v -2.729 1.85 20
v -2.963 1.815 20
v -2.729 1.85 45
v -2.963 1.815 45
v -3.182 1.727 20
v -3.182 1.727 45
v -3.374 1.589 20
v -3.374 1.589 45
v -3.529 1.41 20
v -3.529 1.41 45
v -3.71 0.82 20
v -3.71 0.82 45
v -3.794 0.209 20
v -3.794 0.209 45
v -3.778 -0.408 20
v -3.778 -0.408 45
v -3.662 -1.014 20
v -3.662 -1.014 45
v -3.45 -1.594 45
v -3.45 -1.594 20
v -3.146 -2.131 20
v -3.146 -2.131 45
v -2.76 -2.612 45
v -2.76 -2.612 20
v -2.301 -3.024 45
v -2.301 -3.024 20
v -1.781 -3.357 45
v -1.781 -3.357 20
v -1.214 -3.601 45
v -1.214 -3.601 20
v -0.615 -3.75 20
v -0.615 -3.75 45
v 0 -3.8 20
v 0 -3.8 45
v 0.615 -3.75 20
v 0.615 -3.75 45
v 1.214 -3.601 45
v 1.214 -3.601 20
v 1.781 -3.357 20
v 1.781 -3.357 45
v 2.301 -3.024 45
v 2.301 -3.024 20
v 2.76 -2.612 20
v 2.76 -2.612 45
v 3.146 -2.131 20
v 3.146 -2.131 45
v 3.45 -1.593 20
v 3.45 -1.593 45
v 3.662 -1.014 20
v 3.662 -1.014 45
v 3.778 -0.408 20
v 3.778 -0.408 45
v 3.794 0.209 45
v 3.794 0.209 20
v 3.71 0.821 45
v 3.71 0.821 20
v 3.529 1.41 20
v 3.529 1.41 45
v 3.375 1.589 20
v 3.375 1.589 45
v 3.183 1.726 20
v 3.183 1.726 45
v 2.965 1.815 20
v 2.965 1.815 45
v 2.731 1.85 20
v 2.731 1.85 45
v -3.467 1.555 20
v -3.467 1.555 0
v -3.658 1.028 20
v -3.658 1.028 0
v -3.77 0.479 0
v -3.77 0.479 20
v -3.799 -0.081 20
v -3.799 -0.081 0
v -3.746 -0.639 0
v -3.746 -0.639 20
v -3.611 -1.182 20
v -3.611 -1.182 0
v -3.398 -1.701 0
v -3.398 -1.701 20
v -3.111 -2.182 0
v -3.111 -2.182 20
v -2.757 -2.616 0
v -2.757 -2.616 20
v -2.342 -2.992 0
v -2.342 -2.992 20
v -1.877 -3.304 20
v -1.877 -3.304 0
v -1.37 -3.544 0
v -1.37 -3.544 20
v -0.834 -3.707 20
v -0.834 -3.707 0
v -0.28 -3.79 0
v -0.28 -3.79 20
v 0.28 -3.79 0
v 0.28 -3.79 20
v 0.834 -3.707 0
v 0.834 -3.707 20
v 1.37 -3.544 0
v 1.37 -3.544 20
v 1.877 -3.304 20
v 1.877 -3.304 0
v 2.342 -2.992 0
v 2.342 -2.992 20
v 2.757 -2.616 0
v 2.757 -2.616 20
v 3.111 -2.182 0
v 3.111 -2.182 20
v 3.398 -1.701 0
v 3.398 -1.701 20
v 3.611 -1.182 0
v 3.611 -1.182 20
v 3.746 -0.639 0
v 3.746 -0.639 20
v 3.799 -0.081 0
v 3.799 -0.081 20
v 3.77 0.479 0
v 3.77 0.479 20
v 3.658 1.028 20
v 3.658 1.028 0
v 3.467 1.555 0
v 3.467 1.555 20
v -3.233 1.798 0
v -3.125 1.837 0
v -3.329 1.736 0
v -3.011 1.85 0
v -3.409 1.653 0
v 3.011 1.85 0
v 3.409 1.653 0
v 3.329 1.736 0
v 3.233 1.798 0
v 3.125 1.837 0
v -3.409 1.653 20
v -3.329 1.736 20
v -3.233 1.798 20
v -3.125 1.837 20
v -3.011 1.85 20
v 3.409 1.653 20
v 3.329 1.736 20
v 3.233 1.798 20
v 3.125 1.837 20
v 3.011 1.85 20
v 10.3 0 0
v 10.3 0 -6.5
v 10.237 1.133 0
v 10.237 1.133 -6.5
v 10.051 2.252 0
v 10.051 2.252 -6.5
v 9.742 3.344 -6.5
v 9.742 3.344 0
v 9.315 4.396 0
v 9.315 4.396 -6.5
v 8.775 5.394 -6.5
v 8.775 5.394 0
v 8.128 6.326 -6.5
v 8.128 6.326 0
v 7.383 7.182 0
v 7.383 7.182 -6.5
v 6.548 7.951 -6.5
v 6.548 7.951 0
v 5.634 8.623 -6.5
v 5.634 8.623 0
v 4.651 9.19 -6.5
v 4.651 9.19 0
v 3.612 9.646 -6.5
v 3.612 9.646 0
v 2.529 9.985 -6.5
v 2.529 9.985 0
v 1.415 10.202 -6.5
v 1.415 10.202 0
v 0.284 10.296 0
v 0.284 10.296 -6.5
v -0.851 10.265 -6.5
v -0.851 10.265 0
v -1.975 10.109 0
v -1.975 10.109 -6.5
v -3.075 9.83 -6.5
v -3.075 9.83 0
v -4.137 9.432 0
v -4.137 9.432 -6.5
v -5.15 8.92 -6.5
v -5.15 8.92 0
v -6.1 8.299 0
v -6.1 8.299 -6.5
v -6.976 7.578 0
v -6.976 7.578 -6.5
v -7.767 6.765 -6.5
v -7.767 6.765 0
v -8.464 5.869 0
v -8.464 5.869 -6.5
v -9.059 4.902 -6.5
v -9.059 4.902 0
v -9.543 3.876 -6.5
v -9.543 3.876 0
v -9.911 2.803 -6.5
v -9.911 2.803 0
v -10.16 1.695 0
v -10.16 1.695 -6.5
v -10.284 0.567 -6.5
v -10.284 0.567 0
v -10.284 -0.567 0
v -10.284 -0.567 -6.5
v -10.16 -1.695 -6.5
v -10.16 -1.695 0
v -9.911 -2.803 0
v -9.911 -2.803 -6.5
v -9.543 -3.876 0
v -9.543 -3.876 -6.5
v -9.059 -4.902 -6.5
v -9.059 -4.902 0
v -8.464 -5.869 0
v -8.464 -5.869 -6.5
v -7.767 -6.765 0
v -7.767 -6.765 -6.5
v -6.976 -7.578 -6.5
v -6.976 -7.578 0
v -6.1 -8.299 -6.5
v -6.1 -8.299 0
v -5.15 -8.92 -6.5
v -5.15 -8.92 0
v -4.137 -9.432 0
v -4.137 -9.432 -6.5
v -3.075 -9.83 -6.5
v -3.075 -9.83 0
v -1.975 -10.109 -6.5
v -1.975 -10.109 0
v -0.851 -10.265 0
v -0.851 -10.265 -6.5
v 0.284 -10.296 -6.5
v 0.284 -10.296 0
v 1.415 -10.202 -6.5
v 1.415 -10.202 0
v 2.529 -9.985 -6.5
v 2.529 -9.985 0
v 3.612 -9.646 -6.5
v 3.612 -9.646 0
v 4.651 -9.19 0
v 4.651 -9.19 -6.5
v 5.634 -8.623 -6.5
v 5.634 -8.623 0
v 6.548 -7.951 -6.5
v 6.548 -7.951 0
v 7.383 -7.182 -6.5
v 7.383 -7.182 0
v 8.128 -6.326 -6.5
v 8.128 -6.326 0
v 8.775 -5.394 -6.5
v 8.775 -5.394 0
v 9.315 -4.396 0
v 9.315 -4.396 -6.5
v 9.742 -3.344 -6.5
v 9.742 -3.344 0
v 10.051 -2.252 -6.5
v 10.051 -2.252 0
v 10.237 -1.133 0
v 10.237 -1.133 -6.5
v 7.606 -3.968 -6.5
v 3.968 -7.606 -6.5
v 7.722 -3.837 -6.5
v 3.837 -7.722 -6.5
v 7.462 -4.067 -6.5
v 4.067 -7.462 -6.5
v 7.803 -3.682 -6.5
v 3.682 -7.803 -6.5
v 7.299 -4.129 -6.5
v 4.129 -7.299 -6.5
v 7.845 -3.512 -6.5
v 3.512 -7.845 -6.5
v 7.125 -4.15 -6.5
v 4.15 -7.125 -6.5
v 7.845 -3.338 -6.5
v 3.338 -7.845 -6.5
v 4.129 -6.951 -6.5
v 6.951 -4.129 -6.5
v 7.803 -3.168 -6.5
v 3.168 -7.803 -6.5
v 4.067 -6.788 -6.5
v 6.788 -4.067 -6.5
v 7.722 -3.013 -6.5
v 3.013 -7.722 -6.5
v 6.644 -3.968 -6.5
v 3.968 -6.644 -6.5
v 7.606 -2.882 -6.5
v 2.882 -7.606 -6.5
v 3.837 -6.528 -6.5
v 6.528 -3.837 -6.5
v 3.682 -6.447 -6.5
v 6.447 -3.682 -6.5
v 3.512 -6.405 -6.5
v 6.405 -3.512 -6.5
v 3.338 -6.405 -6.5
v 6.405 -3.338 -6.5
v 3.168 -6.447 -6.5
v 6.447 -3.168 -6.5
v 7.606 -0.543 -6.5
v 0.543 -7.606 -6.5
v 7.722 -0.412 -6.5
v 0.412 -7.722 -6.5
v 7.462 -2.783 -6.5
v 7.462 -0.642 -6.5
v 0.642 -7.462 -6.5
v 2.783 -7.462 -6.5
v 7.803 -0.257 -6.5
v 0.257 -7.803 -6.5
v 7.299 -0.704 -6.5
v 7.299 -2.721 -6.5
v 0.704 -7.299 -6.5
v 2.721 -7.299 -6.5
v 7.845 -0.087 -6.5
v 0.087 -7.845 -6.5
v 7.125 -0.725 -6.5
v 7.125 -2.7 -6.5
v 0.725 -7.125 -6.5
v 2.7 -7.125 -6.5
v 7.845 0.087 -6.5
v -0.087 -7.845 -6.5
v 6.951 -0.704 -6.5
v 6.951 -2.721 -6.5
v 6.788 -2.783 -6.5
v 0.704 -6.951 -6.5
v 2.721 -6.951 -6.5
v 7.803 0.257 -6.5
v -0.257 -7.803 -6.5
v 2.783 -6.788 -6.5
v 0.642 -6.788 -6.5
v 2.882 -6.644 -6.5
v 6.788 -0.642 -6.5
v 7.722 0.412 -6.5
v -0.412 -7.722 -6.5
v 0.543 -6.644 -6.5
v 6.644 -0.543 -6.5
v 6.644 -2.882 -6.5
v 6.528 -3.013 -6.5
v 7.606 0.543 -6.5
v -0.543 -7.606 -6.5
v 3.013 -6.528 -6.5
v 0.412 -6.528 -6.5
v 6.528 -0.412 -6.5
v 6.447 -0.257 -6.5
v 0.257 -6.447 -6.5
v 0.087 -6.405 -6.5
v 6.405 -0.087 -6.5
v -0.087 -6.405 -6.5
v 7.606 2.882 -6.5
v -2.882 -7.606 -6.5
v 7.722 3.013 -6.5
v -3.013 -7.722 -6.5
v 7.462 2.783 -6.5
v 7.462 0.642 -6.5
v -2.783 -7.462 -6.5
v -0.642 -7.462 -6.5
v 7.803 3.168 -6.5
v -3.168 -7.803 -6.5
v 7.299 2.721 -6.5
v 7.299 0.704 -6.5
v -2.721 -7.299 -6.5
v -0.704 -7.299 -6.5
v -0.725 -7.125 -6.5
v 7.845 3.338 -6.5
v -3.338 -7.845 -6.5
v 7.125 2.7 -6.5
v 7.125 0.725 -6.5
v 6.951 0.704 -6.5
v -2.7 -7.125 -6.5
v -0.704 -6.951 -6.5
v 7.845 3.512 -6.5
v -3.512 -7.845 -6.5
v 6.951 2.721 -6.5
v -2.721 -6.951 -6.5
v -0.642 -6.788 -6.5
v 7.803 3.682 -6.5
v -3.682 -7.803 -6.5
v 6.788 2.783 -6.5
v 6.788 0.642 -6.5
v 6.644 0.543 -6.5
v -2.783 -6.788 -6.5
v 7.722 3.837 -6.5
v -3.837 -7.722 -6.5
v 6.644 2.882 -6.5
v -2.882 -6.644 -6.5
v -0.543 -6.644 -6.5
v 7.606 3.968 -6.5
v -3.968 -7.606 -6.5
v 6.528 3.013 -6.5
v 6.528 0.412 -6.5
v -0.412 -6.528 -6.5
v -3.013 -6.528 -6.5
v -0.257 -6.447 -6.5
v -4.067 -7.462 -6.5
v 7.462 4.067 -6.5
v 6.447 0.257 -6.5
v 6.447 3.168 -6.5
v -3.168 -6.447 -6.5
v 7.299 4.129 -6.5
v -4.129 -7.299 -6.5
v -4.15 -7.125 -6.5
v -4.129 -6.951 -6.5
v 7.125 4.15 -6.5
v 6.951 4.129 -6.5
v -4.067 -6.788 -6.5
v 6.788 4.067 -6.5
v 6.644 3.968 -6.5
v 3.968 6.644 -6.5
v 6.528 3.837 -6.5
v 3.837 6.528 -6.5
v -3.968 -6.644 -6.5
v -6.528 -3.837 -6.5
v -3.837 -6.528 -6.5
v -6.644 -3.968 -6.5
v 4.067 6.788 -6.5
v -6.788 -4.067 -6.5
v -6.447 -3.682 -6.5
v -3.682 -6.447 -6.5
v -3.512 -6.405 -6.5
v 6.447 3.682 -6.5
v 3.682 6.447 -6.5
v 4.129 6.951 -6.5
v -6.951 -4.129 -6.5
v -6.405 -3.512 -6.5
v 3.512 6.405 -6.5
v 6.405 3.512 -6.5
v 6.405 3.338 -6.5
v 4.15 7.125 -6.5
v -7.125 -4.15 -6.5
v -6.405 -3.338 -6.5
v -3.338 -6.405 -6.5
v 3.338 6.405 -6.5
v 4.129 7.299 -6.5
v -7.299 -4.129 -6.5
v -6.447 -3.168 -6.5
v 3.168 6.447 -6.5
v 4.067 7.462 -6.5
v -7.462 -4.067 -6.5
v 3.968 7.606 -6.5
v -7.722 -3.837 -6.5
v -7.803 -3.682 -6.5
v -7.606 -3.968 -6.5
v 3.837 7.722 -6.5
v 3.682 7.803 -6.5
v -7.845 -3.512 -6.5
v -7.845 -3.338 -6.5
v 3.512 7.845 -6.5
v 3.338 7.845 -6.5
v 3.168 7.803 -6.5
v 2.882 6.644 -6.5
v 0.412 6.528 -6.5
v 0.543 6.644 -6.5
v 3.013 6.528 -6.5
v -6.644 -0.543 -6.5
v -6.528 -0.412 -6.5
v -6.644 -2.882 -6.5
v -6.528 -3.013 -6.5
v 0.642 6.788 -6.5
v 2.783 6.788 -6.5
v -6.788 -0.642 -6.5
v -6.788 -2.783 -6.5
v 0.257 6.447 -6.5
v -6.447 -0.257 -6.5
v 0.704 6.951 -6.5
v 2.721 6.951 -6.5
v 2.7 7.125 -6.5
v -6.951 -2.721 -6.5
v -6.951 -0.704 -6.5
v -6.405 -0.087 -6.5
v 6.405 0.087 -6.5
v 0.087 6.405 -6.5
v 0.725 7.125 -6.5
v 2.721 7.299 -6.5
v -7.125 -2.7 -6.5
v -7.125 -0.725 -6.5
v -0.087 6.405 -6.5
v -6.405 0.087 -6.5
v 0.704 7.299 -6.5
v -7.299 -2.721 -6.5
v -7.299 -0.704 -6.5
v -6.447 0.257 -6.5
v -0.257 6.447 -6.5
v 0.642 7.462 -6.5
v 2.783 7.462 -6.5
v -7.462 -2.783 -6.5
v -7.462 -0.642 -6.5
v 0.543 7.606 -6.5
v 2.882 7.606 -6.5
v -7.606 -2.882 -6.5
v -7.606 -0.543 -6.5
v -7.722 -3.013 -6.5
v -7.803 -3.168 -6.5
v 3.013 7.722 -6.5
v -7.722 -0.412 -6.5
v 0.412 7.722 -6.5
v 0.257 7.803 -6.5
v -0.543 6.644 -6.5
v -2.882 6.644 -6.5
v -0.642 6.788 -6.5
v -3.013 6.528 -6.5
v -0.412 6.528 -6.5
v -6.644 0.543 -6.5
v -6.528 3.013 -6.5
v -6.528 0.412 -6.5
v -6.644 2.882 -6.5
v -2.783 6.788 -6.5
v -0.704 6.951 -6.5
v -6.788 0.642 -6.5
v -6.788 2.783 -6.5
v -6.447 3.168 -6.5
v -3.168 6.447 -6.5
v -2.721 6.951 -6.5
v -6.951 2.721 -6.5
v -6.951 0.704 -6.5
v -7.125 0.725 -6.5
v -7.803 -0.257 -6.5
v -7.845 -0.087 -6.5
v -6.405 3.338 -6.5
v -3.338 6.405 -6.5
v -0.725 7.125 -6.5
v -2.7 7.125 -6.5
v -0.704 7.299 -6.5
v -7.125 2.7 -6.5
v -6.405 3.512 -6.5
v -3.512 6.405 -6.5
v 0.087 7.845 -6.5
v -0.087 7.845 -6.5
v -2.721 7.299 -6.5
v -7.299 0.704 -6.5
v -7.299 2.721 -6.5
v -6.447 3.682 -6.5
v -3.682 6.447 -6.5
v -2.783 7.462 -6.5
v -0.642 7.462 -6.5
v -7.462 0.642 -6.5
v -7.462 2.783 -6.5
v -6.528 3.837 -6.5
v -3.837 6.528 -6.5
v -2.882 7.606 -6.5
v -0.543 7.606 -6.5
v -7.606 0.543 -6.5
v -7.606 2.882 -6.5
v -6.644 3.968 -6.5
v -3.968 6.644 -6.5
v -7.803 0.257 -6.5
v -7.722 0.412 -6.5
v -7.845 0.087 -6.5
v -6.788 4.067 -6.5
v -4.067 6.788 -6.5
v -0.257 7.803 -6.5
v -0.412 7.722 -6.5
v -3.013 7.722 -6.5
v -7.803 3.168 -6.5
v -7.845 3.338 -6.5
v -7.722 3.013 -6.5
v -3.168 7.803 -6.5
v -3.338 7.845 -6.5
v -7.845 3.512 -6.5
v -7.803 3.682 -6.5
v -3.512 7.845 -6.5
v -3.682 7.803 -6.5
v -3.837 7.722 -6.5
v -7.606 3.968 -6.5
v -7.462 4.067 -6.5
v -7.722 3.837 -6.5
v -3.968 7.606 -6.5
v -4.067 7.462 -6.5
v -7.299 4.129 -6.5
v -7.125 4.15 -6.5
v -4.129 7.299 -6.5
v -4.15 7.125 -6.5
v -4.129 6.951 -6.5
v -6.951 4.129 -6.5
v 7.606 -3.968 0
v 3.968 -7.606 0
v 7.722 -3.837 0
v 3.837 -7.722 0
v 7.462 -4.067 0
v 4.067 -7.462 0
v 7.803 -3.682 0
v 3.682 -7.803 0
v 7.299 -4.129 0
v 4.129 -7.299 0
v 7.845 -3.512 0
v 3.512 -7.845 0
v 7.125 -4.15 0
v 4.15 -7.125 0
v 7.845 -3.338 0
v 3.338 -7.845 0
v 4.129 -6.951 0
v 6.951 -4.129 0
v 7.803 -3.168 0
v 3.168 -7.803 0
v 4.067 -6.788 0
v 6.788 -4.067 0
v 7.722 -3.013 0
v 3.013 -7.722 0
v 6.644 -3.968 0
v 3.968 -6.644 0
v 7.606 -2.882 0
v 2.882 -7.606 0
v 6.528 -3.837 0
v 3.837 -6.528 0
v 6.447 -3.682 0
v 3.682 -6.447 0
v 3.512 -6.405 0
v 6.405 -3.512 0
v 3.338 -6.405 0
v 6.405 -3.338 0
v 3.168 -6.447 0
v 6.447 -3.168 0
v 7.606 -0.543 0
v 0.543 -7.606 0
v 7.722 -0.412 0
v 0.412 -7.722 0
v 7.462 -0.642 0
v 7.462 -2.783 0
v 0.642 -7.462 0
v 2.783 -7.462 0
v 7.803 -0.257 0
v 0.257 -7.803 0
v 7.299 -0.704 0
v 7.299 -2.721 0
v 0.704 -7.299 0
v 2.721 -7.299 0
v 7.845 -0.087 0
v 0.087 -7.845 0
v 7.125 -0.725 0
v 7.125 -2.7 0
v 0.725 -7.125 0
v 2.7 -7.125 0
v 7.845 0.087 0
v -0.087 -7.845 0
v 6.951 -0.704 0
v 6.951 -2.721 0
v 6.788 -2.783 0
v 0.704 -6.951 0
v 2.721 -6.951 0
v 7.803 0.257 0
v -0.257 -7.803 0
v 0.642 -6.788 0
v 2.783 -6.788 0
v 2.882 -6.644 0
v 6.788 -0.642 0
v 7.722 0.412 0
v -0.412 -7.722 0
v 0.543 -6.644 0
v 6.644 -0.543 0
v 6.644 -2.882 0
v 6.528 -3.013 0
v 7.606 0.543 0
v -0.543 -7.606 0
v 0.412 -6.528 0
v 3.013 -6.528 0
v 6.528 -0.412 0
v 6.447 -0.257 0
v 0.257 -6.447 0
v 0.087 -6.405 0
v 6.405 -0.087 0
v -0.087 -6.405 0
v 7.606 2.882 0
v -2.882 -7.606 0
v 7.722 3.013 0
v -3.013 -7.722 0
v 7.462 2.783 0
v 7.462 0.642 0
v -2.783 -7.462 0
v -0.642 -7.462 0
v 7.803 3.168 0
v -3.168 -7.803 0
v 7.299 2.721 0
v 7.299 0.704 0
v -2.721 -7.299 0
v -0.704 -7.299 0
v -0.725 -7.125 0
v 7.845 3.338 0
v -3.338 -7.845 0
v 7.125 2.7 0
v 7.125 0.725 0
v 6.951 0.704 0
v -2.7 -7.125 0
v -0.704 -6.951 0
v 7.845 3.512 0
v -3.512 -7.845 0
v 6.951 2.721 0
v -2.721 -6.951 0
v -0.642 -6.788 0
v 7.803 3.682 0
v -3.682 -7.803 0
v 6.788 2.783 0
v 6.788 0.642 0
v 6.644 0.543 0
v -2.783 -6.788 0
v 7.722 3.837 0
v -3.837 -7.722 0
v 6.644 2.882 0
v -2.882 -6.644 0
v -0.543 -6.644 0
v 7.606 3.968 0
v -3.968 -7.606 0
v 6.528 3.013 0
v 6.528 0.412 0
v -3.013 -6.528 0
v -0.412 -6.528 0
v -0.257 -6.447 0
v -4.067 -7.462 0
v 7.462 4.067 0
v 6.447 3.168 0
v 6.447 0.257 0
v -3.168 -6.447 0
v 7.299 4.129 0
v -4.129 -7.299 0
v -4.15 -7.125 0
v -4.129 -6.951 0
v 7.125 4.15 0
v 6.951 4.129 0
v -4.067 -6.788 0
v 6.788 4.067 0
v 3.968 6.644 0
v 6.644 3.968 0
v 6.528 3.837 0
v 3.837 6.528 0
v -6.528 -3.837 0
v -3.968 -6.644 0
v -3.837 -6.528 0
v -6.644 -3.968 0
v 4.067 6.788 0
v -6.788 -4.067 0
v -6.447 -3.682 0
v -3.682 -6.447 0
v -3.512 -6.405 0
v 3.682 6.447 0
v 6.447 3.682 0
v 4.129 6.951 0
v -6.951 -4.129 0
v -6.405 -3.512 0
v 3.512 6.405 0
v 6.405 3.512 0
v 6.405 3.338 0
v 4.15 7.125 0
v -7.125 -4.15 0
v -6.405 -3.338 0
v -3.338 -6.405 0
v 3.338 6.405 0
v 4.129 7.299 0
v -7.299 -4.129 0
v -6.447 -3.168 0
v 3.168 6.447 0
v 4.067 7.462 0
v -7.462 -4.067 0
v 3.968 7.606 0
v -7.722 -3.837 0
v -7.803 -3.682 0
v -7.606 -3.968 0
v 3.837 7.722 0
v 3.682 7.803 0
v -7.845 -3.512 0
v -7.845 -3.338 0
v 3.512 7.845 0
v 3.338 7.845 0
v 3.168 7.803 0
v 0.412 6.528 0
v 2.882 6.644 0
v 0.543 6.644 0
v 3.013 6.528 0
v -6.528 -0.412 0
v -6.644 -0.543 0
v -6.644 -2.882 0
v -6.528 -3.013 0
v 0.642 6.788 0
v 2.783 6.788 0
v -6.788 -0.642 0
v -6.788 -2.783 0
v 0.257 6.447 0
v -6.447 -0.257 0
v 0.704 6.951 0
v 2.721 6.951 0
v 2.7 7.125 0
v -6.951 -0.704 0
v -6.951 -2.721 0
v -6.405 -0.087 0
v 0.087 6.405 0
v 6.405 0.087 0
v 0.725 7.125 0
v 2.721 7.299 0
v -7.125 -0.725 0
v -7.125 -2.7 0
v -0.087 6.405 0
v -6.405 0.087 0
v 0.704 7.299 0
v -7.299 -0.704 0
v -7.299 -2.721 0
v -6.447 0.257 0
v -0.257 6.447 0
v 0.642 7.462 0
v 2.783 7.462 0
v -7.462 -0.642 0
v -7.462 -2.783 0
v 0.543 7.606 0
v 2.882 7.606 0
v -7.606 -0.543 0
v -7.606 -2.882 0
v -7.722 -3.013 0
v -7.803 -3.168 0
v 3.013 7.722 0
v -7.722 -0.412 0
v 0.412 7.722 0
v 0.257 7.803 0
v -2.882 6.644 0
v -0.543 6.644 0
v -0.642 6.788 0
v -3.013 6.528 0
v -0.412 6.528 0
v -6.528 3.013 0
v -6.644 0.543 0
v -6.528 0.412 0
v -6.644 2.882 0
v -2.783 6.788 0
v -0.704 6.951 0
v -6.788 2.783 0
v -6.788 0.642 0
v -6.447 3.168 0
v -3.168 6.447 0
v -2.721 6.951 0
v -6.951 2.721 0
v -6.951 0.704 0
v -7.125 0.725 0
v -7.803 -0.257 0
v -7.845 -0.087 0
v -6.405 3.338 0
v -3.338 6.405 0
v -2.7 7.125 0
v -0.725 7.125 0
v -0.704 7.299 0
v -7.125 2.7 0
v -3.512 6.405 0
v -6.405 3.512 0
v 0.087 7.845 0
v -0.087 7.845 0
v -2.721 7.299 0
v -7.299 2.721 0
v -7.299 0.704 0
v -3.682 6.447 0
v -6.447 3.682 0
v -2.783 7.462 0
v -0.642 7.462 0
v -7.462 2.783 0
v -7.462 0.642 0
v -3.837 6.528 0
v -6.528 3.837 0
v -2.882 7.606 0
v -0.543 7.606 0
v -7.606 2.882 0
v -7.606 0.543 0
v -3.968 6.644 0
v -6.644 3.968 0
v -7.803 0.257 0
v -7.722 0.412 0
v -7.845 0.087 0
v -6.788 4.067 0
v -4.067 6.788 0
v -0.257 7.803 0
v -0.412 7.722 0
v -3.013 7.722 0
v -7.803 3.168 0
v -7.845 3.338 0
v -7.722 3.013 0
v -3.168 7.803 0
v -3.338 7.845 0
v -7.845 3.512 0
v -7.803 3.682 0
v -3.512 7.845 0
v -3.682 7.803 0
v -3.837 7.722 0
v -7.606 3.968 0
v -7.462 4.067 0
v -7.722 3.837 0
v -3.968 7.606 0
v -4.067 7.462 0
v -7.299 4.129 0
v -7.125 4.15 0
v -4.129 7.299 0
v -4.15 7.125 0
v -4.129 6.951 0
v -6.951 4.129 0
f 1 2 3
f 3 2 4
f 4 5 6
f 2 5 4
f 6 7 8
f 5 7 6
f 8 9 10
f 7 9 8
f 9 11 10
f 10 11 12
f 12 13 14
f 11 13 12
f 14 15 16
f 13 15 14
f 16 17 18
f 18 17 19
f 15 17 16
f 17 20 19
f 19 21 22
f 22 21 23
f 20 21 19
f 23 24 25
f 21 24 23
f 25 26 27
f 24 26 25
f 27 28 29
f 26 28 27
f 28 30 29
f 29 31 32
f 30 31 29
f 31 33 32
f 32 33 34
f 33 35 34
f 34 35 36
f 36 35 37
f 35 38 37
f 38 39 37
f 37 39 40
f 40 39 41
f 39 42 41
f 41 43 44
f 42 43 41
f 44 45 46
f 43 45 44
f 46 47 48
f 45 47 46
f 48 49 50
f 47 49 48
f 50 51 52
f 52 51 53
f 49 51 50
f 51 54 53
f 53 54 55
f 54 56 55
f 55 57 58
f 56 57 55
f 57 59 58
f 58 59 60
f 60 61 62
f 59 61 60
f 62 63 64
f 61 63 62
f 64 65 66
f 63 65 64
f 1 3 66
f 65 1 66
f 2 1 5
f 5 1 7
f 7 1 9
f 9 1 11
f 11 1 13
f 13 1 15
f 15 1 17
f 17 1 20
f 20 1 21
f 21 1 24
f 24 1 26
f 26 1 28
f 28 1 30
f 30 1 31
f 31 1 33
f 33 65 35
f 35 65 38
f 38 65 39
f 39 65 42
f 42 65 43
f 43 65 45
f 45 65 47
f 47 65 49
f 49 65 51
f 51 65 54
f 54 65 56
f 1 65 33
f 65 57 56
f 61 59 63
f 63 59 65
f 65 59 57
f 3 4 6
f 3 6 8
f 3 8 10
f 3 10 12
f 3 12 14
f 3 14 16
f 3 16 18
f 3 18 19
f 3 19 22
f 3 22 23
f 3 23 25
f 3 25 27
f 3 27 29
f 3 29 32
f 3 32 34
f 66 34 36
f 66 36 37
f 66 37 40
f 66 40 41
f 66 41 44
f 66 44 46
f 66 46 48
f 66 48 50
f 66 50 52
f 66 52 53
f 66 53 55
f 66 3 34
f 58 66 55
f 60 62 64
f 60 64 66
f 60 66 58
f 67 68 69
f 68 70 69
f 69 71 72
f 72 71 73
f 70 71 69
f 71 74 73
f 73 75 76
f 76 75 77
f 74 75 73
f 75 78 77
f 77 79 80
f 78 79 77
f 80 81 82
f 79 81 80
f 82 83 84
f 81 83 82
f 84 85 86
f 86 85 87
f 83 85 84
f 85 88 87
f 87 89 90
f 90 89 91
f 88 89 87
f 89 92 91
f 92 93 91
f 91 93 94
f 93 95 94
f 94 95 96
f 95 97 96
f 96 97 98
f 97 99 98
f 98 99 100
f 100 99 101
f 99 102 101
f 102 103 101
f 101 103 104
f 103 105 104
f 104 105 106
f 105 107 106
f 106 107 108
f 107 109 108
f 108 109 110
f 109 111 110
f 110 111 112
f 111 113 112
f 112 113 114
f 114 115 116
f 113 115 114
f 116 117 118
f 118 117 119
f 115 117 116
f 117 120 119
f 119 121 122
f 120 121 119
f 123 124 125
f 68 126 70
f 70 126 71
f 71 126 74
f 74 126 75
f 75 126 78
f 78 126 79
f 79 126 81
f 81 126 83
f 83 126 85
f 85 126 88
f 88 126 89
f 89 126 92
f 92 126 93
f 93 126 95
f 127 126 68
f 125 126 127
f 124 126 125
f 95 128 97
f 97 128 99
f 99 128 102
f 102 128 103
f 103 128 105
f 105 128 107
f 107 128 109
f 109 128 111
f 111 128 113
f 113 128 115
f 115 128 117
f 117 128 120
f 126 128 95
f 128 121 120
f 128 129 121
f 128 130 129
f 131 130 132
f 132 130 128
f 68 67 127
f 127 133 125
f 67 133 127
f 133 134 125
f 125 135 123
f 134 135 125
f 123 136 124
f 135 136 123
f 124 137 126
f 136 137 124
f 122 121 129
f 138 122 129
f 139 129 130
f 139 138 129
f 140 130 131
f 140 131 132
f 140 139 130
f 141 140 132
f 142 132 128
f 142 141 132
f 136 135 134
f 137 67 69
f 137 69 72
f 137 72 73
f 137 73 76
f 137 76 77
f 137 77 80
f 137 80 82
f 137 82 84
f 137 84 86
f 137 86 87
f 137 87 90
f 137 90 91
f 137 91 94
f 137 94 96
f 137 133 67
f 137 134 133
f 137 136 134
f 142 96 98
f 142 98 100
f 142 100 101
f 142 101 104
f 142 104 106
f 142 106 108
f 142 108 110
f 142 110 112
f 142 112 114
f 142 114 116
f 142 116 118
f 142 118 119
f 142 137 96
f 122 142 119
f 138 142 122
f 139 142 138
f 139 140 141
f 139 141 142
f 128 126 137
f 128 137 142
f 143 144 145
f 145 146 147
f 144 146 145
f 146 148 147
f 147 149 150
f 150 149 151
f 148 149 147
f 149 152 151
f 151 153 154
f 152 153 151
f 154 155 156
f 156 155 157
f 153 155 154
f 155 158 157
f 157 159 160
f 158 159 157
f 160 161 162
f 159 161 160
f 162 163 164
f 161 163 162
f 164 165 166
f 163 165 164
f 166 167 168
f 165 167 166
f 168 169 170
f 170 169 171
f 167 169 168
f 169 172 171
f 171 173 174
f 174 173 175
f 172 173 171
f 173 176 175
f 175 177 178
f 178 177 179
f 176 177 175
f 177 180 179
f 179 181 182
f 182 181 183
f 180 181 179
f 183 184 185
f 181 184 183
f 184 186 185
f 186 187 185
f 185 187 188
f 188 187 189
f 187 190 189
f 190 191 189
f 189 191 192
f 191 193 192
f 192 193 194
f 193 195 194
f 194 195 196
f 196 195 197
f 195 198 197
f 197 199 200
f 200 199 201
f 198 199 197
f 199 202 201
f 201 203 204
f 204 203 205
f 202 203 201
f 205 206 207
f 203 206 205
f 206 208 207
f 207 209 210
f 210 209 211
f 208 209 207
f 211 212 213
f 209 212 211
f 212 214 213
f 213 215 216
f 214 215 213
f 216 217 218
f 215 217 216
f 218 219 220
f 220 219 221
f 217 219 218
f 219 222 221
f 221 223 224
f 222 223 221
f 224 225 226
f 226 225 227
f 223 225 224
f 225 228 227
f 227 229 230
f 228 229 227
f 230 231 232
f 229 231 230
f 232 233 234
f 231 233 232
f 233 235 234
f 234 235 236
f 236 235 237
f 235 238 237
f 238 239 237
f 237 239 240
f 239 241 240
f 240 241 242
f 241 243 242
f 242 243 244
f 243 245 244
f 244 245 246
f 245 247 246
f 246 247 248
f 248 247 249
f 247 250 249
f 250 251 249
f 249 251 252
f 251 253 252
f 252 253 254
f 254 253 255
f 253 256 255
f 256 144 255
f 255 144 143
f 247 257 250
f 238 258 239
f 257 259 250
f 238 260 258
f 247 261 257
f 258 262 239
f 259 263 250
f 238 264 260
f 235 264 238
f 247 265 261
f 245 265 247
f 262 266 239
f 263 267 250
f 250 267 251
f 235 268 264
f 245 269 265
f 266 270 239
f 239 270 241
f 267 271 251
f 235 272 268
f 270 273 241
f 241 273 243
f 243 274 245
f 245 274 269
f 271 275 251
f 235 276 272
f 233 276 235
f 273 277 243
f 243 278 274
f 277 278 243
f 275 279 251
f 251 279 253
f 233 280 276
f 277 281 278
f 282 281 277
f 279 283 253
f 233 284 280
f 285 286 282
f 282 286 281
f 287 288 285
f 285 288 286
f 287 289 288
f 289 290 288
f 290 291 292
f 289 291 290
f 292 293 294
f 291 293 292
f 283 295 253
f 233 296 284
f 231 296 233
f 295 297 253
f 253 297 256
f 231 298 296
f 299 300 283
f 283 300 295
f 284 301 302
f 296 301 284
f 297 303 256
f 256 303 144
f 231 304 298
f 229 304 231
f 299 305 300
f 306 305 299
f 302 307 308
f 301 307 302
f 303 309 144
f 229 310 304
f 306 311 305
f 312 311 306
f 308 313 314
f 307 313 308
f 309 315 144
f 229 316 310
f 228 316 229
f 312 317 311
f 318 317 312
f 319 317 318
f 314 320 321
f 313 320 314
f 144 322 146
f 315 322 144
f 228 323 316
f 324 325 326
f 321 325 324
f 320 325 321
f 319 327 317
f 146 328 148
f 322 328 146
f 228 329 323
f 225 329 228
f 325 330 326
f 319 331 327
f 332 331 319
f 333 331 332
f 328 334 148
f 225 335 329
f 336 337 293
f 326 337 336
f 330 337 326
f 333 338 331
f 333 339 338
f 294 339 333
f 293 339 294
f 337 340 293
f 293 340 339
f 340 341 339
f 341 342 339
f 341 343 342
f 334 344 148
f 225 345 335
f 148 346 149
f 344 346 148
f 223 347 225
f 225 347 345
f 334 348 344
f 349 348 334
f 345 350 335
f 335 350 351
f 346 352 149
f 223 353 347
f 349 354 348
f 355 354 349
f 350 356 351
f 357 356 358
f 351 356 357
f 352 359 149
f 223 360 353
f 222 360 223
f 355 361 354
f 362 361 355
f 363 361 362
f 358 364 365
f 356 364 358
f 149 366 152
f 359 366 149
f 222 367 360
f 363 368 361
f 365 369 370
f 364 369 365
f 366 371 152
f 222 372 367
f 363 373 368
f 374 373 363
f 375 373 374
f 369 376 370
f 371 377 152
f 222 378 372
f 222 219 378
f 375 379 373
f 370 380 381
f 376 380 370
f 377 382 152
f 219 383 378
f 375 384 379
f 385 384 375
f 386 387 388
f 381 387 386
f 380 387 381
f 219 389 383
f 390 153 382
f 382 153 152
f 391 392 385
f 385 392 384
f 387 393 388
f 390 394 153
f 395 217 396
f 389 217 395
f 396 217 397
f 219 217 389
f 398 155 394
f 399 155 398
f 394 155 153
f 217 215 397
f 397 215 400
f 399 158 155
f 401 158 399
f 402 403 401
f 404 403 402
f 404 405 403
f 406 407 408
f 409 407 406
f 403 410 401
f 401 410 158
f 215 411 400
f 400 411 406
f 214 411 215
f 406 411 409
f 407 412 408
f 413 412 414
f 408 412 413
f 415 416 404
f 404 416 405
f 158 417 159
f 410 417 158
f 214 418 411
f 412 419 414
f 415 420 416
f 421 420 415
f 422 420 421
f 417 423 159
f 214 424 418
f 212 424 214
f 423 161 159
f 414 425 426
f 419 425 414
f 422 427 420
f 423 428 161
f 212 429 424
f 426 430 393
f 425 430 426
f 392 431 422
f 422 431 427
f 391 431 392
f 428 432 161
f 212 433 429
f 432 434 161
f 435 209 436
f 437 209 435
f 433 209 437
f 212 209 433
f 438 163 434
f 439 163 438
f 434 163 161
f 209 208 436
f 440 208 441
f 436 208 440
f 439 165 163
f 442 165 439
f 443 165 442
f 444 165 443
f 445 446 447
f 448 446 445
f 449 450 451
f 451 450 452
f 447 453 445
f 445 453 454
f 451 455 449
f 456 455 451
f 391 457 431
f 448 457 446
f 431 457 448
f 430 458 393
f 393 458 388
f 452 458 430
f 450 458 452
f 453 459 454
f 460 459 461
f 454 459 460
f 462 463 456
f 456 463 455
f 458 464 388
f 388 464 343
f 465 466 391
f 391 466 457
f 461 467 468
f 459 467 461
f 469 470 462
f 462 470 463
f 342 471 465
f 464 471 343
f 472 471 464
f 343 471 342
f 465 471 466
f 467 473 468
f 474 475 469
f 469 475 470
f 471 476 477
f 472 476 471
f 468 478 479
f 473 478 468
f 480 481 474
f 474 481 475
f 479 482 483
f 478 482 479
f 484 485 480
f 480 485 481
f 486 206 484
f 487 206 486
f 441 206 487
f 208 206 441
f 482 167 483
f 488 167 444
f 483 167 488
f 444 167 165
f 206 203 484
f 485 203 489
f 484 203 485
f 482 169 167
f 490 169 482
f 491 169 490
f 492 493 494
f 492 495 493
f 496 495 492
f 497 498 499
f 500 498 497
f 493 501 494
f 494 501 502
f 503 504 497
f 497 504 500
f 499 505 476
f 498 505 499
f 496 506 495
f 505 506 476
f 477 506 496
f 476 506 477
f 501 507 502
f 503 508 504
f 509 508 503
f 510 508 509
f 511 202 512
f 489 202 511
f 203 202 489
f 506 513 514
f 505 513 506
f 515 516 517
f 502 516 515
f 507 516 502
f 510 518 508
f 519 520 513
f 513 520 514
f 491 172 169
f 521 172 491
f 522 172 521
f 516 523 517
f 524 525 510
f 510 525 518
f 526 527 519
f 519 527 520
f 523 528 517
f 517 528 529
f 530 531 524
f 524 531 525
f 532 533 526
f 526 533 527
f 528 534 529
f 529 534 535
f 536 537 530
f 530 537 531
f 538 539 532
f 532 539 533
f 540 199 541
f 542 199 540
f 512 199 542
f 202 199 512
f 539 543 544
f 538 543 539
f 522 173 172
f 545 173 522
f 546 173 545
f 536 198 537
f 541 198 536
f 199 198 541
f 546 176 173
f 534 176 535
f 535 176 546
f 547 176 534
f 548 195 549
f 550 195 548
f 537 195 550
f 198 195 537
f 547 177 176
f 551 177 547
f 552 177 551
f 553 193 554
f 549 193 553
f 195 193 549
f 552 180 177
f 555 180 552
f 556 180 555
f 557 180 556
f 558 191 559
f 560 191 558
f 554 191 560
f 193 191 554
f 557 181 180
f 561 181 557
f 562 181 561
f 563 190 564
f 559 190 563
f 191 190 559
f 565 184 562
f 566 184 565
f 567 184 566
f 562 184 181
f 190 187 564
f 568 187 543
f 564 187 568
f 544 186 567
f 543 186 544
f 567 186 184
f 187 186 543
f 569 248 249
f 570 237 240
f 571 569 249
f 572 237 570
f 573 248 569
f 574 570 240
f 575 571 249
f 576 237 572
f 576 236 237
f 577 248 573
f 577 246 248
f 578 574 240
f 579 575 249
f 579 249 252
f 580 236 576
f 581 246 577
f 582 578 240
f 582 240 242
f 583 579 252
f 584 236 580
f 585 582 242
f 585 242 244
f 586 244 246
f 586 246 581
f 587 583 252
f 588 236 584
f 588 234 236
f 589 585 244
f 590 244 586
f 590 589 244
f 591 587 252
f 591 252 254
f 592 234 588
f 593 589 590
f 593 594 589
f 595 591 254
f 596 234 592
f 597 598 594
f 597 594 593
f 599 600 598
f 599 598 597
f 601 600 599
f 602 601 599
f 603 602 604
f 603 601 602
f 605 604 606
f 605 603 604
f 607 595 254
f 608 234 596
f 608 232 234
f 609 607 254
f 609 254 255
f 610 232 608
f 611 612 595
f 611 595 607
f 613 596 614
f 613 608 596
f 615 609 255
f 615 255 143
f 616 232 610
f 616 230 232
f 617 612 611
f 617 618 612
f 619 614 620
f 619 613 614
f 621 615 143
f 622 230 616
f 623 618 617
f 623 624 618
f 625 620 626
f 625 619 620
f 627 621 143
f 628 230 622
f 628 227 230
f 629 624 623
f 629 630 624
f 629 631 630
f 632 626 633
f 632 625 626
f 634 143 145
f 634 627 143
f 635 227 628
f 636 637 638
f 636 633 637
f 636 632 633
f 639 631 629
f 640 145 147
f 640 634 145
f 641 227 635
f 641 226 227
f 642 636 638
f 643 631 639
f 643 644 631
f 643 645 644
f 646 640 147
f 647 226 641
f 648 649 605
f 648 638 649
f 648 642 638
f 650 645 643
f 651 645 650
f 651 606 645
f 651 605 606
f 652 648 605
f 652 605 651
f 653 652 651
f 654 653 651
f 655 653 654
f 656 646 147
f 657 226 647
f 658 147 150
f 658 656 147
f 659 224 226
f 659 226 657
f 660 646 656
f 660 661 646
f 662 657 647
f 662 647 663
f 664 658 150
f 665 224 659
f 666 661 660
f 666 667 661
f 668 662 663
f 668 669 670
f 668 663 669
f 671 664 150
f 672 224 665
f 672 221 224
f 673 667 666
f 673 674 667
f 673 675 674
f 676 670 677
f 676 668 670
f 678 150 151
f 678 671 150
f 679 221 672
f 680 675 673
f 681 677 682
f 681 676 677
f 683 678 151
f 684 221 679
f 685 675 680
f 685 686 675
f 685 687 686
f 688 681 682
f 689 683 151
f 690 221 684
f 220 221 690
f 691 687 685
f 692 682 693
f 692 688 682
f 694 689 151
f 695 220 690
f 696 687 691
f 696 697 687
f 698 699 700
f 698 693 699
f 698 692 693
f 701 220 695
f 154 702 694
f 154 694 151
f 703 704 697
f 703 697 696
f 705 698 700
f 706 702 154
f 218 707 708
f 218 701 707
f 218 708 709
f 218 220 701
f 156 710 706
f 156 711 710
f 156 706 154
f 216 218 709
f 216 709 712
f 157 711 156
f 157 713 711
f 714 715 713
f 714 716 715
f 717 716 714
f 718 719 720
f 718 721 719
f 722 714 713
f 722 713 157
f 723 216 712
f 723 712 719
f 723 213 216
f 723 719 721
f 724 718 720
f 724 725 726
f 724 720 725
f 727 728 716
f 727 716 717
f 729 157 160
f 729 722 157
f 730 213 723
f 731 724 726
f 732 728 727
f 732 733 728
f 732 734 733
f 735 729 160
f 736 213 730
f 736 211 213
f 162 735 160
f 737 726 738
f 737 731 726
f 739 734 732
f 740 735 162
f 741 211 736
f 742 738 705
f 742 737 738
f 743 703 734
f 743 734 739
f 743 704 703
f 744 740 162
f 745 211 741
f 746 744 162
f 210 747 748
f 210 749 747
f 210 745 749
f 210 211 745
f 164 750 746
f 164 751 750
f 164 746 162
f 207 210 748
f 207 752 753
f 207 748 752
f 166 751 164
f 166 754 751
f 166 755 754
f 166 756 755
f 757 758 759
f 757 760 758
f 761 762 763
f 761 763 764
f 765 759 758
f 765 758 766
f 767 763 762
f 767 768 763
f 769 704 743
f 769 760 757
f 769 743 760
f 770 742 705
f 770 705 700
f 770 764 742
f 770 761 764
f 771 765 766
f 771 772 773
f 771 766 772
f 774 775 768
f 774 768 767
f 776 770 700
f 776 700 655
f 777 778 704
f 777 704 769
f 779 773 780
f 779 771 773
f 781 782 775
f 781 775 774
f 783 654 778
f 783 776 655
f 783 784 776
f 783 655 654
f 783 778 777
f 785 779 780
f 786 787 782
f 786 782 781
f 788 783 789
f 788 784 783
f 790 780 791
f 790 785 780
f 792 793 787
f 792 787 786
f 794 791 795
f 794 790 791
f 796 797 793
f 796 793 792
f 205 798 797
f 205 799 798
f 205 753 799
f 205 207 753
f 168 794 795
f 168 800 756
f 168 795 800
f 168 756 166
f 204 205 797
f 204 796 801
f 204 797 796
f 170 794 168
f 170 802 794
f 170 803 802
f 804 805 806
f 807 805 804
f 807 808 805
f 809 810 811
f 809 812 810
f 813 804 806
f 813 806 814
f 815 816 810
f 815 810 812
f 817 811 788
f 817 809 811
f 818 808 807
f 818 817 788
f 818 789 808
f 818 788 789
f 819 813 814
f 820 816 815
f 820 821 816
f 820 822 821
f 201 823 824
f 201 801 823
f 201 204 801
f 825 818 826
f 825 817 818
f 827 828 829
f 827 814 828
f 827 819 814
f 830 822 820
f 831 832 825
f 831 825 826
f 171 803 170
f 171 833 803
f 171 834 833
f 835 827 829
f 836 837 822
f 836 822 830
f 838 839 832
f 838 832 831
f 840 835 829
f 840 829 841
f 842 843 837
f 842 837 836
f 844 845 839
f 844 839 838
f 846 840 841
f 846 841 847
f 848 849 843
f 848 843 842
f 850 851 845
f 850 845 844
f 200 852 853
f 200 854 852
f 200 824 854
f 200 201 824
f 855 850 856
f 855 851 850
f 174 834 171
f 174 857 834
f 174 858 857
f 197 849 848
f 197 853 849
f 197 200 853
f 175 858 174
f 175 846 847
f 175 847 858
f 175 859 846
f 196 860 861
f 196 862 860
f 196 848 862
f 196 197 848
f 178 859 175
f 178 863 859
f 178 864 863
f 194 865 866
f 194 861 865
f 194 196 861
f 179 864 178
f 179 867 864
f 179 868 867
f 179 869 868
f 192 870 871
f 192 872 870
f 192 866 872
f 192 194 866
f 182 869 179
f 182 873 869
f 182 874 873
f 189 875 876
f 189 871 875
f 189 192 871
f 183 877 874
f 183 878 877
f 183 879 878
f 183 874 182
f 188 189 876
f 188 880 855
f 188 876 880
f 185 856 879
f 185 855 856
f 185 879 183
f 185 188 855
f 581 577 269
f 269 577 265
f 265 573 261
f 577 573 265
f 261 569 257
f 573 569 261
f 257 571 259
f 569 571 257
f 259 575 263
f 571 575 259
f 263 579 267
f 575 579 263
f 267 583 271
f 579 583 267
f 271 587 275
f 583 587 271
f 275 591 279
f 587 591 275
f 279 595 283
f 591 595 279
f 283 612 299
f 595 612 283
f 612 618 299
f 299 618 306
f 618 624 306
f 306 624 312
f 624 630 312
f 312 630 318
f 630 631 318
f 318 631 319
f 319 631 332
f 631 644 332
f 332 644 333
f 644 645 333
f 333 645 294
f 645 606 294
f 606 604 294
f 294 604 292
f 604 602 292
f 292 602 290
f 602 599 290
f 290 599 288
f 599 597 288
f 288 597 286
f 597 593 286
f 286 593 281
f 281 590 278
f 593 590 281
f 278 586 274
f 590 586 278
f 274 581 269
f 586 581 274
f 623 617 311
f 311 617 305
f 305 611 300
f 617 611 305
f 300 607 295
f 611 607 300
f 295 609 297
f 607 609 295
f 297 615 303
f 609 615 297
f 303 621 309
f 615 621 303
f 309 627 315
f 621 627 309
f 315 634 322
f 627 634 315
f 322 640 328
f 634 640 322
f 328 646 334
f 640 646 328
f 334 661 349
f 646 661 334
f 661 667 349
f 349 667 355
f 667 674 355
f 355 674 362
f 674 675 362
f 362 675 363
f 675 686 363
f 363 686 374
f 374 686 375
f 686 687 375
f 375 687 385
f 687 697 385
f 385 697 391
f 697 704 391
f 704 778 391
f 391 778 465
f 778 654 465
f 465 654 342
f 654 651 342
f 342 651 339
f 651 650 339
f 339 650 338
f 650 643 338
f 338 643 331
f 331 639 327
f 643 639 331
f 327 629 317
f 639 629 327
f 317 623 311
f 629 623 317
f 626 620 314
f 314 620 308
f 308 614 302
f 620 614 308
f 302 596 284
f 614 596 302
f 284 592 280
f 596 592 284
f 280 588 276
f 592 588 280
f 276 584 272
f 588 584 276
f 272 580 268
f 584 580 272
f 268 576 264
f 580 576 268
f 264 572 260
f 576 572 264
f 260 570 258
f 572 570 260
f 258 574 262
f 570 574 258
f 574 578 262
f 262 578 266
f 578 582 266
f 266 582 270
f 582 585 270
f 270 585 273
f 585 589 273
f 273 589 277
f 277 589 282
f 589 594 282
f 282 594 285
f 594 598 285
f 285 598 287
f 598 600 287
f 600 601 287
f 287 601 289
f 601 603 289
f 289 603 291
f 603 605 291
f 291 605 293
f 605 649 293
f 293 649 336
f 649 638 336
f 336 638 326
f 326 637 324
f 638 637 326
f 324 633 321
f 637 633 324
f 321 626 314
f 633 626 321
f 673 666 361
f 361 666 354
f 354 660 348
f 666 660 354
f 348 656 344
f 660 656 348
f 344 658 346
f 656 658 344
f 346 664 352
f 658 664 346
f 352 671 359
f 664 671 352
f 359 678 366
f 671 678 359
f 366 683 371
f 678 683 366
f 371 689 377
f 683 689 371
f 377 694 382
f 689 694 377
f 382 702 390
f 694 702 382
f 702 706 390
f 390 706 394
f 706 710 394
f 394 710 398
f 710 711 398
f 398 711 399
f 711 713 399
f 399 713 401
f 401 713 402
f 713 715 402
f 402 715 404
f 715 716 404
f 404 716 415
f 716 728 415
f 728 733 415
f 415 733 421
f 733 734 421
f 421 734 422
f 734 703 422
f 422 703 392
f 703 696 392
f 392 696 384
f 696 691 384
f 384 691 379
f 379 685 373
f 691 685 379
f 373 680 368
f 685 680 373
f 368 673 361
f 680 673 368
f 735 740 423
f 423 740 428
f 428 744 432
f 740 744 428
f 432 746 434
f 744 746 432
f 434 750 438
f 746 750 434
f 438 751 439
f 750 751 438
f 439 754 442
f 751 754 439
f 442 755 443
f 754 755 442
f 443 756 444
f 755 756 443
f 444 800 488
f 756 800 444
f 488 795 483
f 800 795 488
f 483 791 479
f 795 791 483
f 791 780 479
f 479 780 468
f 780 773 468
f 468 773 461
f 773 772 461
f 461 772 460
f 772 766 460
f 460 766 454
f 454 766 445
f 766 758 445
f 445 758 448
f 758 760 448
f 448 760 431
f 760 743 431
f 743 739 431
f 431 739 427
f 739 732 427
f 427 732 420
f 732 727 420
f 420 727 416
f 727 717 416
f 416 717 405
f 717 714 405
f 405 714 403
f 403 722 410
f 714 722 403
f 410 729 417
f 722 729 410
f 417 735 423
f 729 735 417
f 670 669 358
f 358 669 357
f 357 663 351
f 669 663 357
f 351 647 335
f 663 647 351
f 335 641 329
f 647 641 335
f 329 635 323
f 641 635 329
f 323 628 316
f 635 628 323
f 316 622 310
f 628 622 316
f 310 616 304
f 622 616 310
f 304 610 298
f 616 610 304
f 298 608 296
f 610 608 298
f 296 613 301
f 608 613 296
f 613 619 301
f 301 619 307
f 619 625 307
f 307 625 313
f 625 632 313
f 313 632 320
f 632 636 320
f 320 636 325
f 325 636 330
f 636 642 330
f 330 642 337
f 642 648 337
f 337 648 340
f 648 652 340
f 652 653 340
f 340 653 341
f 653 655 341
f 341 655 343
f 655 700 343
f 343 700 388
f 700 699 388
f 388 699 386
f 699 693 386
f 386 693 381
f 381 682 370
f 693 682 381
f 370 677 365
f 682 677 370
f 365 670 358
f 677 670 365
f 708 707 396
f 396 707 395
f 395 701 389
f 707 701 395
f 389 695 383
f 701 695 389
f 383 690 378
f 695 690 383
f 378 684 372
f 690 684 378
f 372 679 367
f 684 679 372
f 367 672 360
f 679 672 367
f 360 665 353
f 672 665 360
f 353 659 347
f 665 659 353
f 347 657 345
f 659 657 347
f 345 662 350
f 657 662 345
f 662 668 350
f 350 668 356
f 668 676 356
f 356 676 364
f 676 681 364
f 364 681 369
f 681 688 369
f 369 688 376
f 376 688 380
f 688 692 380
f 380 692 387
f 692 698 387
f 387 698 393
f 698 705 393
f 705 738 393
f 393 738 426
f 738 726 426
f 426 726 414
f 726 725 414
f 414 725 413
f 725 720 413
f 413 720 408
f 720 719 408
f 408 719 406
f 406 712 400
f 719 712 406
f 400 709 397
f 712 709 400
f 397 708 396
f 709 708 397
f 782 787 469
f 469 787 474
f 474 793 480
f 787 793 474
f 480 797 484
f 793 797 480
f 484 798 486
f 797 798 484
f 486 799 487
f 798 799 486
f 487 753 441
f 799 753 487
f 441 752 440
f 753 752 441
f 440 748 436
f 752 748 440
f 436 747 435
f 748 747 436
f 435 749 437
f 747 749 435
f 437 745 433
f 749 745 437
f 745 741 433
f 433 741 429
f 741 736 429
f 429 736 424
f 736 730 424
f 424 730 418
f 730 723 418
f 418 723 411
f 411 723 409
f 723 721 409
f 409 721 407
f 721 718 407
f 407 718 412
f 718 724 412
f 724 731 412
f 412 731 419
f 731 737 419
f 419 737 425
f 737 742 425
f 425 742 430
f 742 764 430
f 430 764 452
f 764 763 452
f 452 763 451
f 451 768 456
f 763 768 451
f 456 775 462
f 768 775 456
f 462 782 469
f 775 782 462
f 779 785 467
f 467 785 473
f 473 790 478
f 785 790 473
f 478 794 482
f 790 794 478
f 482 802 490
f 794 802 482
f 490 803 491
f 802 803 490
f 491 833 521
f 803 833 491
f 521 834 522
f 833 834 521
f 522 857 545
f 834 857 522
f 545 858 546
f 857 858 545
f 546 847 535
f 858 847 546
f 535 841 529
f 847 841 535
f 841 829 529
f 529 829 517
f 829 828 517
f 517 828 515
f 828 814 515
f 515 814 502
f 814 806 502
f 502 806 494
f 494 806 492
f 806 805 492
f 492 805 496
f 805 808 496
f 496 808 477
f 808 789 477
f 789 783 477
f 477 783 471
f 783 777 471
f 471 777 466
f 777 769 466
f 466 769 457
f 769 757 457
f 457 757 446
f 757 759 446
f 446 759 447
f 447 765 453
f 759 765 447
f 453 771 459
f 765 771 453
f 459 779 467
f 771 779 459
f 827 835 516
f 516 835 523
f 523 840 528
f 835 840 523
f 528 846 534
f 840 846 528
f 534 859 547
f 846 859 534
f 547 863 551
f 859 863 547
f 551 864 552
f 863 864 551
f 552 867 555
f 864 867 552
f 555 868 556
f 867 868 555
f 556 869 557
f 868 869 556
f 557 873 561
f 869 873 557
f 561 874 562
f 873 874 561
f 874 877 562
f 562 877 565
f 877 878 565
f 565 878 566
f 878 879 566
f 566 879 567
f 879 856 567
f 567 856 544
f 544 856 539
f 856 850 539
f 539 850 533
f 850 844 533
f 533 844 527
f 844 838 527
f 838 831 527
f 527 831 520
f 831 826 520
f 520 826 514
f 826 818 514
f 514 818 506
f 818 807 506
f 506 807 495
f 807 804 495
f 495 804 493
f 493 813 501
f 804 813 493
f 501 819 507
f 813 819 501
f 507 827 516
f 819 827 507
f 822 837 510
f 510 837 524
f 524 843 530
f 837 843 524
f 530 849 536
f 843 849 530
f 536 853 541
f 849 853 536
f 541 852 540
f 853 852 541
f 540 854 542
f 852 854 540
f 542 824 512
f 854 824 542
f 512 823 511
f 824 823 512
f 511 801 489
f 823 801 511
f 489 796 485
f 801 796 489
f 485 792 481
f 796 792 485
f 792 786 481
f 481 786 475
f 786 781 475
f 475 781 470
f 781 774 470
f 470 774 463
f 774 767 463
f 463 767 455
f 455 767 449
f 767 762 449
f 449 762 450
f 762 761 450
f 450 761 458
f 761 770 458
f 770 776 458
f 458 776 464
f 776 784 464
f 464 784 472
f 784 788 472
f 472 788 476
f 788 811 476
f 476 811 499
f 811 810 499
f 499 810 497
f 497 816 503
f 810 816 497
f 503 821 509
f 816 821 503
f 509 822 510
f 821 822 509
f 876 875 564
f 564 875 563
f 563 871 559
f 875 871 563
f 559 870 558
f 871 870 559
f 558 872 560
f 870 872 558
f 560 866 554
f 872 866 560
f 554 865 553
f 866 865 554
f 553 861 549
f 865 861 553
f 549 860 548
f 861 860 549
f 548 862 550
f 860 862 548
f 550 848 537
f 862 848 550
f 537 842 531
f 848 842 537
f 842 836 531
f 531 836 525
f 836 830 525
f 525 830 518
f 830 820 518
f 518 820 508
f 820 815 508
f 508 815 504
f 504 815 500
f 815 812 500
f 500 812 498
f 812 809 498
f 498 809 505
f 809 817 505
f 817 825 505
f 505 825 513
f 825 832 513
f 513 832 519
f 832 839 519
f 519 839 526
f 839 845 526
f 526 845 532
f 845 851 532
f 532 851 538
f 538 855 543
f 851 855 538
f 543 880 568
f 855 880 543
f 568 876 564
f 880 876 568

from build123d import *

# Parameters (mm, degrees)
EXTRUDE002_DEPTH   = 25
SKETCH_R           = 10.3
EXTRUDE_DEPTH      = 6.5
SKETCH003_R        = 0.725
POCKET_DEPTH       = 10
POLARPATTERN_COUNT = 4
EXTRUDE001_DEPTH   = 20
FILLET_R           = 0.5


with BuildPart() as dshaftupperextrude:
    # Sketch002 (on Face4 of Extrude001) → Extrude002 (new body)
    with BuildSketch(Plane.XY.offset(20)):
        with BuildLine():
            ThreePointArc((-2.728847, 1.85), (-3.181859, 1.726665), (-3.528654, 1.410177))
            ThreePointArc((-3.528654, 1.410177), (0.000105, -3.8), (3.528577, 1.410371))
            ThreePointArc((3.528577, 1.410371), (3.182952, 1.726142), (2.731481, 1.85))
            Line((-2.728847, 1.85), (2.731481, 1.85))
        make_face()
    extrude(amount=EXTRUDE002_DEPTH)


with BuildPart() as basebody:
    # Sketch → Extrude (new body)
    with BuildSketch(Plane.XY):
        Circle(SKETCH_R)
    extrude(amount=-EXTRUDE_DEPTH)

    # Sketch003 (on Face3 of Extrude) → Pocket (cut)
    with BuildSketch(Plane.XY):
        with Locations((0, 7.125)):
            Circle(SKETCH003_R)
        with Locations((3.425, 7.125)):
            Circle(SKETCH003_R)
        with Locations((-3.425, 7.125)):
            Circle(SKETCH003_R)
    pocket = extrude(amount=-POCKET_DEPTH, mode=Mode.SUBTRACT)

    # PolarPattern: Pocket ×4 about axis
    polarpattern_axis = Axis((0, 0, 0), (0, 0, 1))
    for i in range(1, POLARPATTERN_COUNT):
        add(pocket.rotate(polarpattern_axis, i * 360 / POLARPATTERN_COUNT), mode=Mode.SUBTRACT)


with BuildPart() as dshaftlowerextrudefillet:
    # Sketch001 (on Face3 of Extrude) → Extrude001 (new body)
    with BuildSketch(Plane.XY):
        with BuildLine():
            ThreePointArc((-3.319262, 1.85), (0, -3.8), (3.319262, 1.85))
            Line((-3.319262, 1.85), (3.319262, 1.85))
        make_face()
    extrude(amount=EXTRUDE001_DEPTH)

    # Fillet
    fillet_edges = [dshaftlowerextrudefillet.edges().sort_by_distance(p)[0] for p in [
        (-3.319262, 1.85, 10),
        (3.319262, 1.85, 10),
    ]]
    fillet(fillet_edges, radius=FILLET_R)


solid = Compound([dshaftupperextrude.part, basebody.part, dshaftlowerextrudefillet.part])
